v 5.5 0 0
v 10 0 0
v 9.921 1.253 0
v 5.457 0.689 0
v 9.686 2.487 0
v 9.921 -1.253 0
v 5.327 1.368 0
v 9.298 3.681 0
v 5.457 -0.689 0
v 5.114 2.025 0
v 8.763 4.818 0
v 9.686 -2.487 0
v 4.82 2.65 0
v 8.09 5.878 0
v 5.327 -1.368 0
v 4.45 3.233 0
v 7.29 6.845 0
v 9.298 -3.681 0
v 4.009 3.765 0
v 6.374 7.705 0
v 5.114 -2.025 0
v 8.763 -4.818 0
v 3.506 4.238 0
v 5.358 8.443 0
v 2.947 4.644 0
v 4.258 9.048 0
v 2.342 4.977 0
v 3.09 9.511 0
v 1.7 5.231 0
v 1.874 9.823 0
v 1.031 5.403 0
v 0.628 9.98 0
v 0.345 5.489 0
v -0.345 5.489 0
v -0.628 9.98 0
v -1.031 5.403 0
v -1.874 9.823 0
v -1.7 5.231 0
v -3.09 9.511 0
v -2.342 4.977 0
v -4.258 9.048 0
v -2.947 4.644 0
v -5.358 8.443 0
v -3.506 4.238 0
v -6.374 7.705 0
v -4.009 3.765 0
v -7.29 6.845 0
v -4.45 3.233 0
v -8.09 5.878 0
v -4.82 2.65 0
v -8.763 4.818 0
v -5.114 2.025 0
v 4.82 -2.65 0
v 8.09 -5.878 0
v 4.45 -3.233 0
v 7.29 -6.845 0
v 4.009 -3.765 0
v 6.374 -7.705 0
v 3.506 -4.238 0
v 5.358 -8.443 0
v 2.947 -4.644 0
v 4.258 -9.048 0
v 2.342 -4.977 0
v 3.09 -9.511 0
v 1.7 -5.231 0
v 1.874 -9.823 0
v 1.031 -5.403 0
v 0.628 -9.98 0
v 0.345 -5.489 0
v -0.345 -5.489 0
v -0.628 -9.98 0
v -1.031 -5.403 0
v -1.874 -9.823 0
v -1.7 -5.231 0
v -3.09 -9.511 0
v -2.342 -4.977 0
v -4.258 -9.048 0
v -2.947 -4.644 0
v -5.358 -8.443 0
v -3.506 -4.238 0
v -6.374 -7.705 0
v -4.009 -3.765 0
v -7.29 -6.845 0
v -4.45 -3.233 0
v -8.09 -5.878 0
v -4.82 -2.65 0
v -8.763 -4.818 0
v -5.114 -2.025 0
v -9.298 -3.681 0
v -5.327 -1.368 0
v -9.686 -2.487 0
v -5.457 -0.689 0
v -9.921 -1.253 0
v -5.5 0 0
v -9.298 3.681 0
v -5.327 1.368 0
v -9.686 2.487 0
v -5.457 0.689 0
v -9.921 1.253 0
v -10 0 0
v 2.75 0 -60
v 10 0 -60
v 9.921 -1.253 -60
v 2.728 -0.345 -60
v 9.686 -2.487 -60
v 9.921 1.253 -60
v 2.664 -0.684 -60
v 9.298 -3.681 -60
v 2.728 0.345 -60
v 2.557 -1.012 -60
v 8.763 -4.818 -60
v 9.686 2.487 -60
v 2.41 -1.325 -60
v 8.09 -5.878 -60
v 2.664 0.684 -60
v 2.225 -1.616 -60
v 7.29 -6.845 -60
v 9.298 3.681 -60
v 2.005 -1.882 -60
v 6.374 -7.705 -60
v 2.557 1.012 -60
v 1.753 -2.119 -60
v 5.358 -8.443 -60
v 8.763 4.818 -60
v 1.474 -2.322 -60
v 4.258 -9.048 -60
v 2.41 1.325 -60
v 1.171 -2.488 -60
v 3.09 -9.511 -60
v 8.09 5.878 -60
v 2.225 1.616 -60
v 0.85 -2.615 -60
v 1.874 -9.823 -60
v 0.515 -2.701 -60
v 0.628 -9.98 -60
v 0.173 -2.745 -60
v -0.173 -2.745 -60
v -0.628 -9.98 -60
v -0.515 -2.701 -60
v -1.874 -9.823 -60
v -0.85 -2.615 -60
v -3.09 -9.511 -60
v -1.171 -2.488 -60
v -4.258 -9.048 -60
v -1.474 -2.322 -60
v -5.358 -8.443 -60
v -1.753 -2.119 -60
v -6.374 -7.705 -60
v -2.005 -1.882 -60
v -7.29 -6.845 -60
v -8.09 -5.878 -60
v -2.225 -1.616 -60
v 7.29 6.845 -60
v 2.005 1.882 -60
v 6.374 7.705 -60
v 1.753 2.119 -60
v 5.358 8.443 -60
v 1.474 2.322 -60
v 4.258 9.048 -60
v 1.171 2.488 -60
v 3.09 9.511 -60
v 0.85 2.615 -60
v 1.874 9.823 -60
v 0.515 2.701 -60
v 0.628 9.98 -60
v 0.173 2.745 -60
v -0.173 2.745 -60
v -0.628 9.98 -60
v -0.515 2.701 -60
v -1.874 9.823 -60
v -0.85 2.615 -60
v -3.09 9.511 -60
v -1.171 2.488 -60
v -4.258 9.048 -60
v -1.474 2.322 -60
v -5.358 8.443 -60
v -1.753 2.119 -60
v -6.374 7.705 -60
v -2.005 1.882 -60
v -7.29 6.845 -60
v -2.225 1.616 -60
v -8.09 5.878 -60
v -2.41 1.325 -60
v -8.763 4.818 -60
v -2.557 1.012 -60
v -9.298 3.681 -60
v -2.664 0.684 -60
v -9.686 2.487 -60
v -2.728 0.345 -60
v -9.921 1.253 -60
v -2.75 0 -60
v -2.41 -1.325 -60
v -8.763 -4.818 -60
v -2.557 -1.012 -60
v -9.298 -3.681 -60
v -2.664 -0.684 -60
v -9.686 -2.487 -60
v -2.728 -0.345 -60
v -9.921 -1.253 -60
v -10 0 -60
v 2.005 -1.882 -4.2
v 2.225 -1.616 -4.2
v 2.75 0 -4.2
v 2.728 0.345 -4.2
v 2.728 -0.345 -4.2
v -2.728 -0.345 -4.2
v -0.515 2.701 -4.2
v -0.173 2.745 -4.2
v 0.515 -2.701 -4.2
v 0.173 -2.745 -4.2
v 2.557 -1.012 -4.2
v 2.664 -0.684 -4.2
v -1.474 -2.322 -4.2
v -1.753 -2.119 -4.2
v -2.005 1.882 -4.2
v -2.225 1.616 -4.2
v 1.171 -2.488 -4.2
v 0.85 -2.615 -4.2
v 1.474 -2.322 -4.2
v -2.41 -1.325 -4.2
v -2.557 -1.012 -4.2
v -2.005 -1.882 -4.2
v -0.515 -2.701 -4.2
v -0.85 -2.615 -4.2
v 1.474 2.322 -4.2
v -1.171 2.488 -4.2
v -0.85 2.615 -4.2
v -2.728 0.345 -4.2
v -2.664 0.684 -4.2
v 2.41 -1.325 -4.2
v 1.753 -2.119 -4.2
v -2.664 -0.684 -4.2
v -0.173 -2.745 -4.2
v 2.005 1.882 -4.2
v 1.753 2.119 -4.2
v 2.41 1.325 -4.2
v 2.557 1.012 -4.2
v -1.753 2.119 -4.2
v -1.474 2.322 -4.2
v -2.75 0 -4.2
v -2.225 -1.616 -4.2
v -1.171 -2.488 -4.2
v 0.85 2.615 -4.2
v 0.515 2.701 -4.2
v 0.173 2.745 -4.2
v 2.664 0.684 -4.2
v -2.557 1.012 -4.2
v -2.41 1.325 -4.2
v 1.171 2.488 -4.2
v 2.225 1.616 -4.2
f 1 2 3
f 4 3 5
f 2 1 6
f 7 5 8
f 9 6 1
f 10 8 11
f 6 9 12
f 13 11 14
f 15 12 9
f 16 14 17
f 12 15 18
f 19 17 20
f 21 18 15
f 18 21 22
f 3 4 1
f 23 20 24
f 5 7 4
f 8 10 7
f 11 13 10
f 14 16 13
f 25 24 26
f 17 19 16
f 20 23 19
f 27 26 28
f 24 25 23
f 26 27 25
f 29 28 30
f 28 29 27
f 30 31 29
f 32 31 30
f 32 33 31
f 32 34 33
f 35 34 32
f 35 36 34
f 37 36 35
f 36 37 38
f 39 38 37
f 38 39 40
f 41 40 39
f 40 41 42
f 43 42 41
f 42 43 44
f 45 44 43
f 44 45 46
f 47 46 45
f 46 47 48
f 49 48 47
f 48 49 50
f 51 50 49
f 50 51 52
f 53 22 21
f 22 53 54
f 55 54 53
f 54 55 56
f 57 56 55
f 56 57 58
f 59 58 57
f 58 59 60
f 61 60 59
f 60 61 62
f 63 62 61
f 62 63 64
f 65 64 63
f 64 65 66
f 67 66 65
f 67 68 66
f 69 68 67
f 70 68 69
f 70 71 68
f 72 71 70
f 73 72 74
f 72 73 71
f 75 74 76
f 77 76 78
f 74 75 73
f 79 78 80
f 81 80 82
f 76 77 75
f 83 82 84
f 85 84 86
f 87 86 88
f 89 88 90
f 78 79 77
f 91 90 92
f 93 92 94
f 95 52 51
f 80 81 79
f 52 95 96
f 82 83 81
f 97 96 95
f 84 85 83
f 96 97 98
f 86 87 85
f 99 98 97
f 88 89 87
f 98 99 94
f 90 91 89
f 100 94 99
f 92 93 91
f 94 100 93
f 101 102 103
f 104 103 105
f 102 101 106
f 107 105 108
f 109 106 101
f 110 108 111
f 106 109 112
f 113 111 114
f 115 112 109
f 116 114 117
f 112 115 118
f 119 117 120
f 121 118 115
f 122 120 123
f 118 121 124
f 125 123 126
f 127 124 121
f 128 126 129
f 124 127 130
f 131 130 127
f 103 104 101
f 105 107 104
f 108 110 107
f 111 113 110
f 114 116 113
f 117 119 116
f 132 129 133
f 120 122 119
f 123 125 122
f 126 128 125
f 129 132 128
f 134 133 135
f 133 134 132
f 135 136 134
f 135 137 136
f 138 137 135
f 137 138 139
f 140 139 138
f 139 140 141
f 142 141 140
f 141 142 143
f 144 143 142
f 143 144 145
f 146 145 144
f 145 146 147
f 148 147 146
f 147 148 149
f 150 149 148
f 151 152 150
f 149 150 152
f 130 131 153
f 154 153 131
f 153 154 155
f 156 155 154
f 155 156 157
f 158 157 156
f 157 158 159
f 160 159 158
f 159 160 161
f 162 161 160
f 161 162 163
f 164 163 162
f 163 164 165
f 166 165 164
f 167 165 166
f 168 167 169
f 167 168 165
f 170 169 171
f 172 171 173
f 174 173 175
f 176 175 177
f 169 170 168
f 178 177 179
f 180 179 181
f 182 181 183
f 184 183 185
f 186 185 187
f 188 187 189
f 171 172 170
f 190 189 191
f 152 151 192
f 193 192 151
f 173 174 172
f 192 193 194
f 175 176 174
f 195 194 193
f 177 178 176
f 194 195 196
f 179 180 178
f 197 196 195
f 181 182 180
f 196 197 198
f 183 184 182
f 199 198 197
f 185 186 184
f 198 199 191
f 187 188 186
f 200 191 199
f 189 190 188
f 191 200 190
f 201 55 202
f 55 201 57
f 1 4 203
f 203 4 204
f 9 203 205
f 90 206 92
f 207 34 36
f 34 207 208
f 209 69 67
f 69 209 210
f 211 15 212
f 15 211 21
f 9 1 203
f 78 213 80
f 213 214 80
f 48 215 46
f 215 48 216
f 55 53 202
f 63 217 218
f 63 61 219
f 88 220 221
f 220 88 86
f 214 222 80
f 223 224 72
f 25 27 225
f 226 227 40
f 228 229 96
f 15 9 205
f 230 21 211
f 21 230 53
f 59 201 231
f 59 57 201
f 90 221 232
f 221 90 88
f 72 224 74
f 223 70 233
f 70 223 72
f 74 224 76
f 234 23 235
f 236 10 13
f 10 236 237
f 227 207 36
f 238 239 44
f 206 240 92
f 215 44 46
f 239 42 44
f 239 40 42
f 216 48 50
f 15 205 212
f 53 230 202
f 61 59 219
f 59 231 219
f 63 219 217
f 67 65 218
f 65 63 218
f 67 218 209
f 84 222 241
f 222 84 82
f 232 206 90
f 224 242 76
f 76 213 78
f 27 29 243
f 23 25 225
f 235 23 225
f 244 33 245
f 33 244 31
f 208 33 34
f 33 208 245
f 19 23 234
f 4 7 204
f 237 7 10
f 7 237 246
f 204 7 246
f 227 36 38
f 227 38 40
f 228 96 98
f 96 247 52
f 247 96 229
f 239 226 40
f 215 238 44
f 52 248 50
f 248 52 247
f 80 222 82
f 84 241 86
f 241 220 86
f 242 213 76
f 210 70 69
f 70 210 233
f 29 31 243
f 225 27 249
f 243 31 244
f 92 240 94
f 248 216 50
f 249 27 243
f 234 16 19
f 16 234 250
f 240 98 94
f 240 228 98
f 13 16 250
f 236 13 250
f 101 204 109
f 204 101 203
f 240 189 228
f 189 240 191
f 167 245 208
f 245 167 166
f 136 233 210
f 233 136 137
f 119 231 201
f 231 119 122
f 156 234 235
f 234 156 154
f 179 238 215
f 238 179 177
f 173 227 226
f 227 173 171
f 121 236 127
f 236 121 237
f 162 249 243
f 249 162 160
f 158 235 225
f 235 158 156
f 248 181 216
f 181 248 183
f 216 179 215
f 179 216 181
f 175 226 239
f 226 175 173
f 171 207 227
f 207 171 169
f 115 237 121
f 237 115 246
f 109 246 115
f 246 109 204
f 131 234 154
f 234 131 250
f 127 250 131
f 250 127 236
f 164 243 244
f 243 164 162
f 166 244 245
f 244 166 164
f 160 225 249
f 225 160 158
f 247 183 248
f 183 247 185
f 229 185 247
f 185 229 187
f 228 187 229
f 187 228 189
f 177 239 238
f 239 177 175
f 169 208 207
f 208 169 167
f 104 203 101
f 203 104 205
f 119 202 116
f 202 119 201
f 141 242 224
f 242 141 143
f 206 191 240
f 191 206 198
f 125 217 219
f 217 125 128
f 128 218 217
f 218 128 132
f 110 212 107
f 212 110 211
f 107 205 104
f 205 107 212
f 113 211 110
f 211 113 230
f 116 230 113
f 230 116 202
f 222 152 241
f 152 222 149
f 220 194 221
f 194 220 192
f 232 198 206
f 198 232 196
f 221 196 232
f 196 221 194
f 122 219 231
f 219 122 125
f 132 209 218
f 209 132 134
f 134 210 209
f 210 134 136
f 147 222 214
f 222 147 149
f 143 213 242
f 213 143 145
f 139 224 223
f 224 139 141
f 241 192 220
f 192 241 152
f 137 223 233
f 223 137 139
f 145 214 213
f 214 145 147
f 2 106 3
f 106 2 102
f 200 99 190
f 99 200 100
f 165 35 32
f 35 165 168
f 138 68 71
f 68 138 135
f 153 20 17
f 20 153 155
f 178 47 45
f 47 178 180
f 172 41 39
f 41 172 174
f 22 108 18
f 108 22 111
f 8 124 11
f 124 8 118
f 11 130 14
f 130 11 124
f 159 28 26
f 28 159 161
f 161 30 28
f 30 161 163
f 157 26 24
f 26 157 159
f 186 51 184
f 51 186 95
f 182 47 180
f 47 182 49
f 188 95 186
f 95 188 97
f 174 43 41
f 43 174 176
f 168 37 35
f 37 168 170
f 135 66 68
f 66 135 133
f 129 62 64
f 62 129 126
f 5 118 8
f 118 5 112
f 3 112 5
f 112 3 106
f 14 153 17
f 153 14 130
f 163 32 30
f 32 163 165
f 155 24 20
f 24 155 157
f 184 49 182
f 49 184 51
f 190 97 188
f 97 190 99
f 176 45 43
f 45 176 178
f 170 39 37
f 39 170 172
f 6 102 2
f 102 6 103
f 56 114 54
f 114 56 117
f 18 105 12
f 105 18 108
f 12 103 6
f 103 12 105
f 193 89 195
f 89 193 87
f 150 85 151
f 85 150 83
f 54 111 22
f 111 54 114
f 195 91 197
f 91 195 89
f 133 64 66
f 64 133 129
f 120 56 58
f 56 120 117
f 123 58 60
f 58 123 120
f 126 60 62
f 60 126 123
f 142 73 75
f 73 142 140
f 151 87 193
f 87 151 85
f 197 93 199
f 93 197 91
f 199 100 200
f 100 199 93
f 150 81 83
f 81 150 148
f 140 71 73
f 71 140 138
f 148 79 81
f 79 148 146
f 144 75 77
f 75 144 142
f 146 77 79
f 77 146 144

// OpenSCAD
$fn = 50;


difference() {
	union() {
		translate(v = [0, 0, -60.0000000000]) {
			cylinder(h = 60, r = 10.0000000000);
		}
		cylinder(h = 0, r = 13.0000000000);
	}
	union() {
		translate(v = [0, 0, 0]) {
			rotate(a = [0, 0, 0]) {
				difference() {
					union() {
						#translate(v = [0, 0, -60.0000000000]) {
							cylinder(h = 60, r = 2.2500000000);
						}
						#translate(v = [0, 0, -4.2000000000]) {
							cylinder(h = 4.2000000000, r = 10.0000000000, r1 = 2.7500000000, r2 = 5.5000000000);
						}
						#translate(v = [0, 0, -60.0000000000]) {
							cylinder(h = 60, r = 2.7500000000);
						}
						#translate(v = [0, 0, -60.0000000000]) {
							cylinder(h = 60, r = 2.2500000000);
						}
					}
					union();
				}
			}
		}
	}
}
